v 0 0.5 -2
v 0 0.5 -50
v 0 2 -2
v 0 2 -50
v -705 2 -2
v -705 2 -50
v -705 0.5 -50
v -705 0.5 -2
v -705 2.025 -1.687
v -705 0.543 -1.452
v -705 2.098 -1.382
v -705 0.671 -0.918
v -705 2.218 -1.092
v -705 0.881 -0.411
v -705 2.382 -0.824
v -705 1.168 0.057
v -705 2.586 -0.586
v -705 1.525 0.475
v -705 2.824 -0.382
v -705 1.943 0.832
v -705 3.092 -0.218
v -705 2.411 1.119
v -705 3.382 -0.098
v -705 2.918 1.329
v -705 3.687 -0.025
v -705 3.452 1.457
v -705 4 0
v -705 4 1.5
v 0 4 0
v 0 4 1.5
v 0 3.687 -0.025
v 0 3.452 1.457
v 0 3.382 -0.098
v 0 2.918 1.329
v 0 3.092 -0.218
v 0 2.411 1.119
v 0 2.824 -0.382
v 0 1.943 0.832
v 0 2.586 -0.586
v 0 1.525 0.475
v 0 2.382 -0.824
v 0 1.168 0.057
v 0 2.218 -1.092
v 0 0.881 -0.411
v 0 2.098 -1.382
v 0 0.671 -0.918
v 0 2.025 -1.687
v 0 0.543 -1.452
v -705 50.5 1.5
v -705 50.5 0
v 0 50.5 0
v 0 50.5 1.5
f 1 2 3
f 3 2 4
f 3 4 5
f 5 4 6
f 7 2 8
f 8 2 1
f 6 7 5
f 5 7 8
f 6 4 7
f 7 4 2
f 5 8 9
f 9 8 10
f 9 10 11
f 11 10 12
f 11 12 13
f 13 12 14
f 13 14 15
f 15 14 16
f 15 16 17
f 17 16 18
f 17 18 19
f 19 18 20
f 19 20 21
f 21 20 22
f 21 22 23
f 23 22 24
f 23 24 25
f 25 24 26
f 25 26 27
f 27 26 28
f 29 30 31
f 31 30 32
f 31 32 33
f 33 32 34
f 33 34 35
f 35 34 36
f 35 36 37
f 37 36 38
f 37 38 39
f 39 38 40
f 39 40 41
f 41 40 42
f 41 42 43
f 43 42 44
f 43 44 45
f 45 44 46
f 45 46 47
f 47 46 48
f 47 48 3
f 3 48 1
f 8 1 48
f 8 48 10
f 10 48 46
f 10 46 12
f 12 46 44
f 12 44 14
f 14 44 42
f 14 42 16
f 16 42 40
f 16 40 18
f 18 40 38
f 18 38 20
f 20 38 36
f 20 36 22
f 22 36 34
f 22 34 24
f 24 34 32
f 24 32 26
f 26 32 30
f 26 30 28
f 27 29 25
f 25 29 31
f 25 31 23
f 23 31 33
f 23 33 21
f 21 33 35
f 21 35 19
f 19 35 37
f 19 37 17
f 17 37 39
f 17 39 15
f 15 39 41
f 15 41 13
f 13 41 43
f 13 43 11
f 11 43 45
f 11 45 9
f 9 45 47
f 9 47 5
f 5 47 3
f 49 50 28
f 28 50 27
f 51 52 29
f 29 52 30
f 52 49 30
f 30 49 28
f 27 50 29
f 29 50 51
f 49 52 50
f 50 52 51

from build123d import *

# Parameters (mm, degrees)
SKETCH1_W                    = 705
SKETCH1_H                    = 50
BOSS_EXTRUDE1_DEPTH          = 2
CONVERT_SOLID1_OUTLINE_W     = 705
CONVERT_SOLID1_OUTLINE_H     = 50
CONVERT_SOLID1_DEPTH         = 0.5
EDGE_FLANGE1_STRIP_W         = 10
EDGE_FLANGE1_STRIP_H         = 1.5
EDGE_FLANGE1_STRIP_CUT_DEPTH = 705
EDGE_FLANGE1_DEPTH           = 705


# Read off the part's stored shape, not the designer's step: Convert-Solid1
# Sheet-metal steps are written as plain solids
with BuildPart() as part:
    # Sketch1 → Boss-Extrude1 (new body)
    with BuildSketch(Plane(origin=(0, 0, 0), x_dir=(1, 0, 0), z_dir=(0, 1, 0))):
        with Locations((-352.5, 25)):
            Rectangle(SKETCH1_W, SKETCH1_H)
    extrude(amount=BOSS_EXTRUDE1_DEPTH)

    # Convert-Solid1 outline → Convert-Solid1 (cut)
    with BuildSketch(Plane(origin=(0, 0, 0), x_dir=(1, 0, 0), z_dir=(0, 1, 0))):
        with Locations((-352.5, 25)):
            Rectangle(CONVERT_SOLID1_OUTLINE_W, CONVERT_SOLID1_OUTLINE_H)
    extrude(amount=CONVERT_SOLID1_DEPTH, mode=Mode.SUBTRACT)

    # Edge-Flange1 strip (across the edge) → Edge-Flange1 strip cut (cut)
    with BuildSketch(Plane(origin=(-705, 2, 0), x_dir=(0, 0, -1), z_dir=(1, 0, 0))):
        with Locations((-3, -0.75)):
            Rectangle(EDGE_FLANGE1_STRIP_W, EDGE_FLANGE1_STRIP_H)
    extrude(amount=EDGE_FLANGE1_STRIP_CUT_DEPTH, mode=Mode.SUBTRACT)

    # Edge-Flange1 section (across the edge) → Edge-Flange1 (add)
    with BuildSketch(Plane(origin=(-705, 2, 0), x_dir=(0, 0, -1), z_dir=(1, 0, 0))):
        with BuildLine():
            Line((-1.5, 2), (-1.5, 48.5))
            Line((-1.5, 48.5), (0, 48.5))
            Line((0, 48.5), (0, 2))
            ThreePointArc((0, 2), (0.585786438, 0.585786438), (2, 0))
            Line((2, 0), (2, -1.5))
            ThreePointArc((2, -1.5), (-0.474873734, -0.474873734), (-1.5, 2))
        make_face()
    extrude(amount=EDGE_FLANGE1_DEPTH)


solid = part.part
